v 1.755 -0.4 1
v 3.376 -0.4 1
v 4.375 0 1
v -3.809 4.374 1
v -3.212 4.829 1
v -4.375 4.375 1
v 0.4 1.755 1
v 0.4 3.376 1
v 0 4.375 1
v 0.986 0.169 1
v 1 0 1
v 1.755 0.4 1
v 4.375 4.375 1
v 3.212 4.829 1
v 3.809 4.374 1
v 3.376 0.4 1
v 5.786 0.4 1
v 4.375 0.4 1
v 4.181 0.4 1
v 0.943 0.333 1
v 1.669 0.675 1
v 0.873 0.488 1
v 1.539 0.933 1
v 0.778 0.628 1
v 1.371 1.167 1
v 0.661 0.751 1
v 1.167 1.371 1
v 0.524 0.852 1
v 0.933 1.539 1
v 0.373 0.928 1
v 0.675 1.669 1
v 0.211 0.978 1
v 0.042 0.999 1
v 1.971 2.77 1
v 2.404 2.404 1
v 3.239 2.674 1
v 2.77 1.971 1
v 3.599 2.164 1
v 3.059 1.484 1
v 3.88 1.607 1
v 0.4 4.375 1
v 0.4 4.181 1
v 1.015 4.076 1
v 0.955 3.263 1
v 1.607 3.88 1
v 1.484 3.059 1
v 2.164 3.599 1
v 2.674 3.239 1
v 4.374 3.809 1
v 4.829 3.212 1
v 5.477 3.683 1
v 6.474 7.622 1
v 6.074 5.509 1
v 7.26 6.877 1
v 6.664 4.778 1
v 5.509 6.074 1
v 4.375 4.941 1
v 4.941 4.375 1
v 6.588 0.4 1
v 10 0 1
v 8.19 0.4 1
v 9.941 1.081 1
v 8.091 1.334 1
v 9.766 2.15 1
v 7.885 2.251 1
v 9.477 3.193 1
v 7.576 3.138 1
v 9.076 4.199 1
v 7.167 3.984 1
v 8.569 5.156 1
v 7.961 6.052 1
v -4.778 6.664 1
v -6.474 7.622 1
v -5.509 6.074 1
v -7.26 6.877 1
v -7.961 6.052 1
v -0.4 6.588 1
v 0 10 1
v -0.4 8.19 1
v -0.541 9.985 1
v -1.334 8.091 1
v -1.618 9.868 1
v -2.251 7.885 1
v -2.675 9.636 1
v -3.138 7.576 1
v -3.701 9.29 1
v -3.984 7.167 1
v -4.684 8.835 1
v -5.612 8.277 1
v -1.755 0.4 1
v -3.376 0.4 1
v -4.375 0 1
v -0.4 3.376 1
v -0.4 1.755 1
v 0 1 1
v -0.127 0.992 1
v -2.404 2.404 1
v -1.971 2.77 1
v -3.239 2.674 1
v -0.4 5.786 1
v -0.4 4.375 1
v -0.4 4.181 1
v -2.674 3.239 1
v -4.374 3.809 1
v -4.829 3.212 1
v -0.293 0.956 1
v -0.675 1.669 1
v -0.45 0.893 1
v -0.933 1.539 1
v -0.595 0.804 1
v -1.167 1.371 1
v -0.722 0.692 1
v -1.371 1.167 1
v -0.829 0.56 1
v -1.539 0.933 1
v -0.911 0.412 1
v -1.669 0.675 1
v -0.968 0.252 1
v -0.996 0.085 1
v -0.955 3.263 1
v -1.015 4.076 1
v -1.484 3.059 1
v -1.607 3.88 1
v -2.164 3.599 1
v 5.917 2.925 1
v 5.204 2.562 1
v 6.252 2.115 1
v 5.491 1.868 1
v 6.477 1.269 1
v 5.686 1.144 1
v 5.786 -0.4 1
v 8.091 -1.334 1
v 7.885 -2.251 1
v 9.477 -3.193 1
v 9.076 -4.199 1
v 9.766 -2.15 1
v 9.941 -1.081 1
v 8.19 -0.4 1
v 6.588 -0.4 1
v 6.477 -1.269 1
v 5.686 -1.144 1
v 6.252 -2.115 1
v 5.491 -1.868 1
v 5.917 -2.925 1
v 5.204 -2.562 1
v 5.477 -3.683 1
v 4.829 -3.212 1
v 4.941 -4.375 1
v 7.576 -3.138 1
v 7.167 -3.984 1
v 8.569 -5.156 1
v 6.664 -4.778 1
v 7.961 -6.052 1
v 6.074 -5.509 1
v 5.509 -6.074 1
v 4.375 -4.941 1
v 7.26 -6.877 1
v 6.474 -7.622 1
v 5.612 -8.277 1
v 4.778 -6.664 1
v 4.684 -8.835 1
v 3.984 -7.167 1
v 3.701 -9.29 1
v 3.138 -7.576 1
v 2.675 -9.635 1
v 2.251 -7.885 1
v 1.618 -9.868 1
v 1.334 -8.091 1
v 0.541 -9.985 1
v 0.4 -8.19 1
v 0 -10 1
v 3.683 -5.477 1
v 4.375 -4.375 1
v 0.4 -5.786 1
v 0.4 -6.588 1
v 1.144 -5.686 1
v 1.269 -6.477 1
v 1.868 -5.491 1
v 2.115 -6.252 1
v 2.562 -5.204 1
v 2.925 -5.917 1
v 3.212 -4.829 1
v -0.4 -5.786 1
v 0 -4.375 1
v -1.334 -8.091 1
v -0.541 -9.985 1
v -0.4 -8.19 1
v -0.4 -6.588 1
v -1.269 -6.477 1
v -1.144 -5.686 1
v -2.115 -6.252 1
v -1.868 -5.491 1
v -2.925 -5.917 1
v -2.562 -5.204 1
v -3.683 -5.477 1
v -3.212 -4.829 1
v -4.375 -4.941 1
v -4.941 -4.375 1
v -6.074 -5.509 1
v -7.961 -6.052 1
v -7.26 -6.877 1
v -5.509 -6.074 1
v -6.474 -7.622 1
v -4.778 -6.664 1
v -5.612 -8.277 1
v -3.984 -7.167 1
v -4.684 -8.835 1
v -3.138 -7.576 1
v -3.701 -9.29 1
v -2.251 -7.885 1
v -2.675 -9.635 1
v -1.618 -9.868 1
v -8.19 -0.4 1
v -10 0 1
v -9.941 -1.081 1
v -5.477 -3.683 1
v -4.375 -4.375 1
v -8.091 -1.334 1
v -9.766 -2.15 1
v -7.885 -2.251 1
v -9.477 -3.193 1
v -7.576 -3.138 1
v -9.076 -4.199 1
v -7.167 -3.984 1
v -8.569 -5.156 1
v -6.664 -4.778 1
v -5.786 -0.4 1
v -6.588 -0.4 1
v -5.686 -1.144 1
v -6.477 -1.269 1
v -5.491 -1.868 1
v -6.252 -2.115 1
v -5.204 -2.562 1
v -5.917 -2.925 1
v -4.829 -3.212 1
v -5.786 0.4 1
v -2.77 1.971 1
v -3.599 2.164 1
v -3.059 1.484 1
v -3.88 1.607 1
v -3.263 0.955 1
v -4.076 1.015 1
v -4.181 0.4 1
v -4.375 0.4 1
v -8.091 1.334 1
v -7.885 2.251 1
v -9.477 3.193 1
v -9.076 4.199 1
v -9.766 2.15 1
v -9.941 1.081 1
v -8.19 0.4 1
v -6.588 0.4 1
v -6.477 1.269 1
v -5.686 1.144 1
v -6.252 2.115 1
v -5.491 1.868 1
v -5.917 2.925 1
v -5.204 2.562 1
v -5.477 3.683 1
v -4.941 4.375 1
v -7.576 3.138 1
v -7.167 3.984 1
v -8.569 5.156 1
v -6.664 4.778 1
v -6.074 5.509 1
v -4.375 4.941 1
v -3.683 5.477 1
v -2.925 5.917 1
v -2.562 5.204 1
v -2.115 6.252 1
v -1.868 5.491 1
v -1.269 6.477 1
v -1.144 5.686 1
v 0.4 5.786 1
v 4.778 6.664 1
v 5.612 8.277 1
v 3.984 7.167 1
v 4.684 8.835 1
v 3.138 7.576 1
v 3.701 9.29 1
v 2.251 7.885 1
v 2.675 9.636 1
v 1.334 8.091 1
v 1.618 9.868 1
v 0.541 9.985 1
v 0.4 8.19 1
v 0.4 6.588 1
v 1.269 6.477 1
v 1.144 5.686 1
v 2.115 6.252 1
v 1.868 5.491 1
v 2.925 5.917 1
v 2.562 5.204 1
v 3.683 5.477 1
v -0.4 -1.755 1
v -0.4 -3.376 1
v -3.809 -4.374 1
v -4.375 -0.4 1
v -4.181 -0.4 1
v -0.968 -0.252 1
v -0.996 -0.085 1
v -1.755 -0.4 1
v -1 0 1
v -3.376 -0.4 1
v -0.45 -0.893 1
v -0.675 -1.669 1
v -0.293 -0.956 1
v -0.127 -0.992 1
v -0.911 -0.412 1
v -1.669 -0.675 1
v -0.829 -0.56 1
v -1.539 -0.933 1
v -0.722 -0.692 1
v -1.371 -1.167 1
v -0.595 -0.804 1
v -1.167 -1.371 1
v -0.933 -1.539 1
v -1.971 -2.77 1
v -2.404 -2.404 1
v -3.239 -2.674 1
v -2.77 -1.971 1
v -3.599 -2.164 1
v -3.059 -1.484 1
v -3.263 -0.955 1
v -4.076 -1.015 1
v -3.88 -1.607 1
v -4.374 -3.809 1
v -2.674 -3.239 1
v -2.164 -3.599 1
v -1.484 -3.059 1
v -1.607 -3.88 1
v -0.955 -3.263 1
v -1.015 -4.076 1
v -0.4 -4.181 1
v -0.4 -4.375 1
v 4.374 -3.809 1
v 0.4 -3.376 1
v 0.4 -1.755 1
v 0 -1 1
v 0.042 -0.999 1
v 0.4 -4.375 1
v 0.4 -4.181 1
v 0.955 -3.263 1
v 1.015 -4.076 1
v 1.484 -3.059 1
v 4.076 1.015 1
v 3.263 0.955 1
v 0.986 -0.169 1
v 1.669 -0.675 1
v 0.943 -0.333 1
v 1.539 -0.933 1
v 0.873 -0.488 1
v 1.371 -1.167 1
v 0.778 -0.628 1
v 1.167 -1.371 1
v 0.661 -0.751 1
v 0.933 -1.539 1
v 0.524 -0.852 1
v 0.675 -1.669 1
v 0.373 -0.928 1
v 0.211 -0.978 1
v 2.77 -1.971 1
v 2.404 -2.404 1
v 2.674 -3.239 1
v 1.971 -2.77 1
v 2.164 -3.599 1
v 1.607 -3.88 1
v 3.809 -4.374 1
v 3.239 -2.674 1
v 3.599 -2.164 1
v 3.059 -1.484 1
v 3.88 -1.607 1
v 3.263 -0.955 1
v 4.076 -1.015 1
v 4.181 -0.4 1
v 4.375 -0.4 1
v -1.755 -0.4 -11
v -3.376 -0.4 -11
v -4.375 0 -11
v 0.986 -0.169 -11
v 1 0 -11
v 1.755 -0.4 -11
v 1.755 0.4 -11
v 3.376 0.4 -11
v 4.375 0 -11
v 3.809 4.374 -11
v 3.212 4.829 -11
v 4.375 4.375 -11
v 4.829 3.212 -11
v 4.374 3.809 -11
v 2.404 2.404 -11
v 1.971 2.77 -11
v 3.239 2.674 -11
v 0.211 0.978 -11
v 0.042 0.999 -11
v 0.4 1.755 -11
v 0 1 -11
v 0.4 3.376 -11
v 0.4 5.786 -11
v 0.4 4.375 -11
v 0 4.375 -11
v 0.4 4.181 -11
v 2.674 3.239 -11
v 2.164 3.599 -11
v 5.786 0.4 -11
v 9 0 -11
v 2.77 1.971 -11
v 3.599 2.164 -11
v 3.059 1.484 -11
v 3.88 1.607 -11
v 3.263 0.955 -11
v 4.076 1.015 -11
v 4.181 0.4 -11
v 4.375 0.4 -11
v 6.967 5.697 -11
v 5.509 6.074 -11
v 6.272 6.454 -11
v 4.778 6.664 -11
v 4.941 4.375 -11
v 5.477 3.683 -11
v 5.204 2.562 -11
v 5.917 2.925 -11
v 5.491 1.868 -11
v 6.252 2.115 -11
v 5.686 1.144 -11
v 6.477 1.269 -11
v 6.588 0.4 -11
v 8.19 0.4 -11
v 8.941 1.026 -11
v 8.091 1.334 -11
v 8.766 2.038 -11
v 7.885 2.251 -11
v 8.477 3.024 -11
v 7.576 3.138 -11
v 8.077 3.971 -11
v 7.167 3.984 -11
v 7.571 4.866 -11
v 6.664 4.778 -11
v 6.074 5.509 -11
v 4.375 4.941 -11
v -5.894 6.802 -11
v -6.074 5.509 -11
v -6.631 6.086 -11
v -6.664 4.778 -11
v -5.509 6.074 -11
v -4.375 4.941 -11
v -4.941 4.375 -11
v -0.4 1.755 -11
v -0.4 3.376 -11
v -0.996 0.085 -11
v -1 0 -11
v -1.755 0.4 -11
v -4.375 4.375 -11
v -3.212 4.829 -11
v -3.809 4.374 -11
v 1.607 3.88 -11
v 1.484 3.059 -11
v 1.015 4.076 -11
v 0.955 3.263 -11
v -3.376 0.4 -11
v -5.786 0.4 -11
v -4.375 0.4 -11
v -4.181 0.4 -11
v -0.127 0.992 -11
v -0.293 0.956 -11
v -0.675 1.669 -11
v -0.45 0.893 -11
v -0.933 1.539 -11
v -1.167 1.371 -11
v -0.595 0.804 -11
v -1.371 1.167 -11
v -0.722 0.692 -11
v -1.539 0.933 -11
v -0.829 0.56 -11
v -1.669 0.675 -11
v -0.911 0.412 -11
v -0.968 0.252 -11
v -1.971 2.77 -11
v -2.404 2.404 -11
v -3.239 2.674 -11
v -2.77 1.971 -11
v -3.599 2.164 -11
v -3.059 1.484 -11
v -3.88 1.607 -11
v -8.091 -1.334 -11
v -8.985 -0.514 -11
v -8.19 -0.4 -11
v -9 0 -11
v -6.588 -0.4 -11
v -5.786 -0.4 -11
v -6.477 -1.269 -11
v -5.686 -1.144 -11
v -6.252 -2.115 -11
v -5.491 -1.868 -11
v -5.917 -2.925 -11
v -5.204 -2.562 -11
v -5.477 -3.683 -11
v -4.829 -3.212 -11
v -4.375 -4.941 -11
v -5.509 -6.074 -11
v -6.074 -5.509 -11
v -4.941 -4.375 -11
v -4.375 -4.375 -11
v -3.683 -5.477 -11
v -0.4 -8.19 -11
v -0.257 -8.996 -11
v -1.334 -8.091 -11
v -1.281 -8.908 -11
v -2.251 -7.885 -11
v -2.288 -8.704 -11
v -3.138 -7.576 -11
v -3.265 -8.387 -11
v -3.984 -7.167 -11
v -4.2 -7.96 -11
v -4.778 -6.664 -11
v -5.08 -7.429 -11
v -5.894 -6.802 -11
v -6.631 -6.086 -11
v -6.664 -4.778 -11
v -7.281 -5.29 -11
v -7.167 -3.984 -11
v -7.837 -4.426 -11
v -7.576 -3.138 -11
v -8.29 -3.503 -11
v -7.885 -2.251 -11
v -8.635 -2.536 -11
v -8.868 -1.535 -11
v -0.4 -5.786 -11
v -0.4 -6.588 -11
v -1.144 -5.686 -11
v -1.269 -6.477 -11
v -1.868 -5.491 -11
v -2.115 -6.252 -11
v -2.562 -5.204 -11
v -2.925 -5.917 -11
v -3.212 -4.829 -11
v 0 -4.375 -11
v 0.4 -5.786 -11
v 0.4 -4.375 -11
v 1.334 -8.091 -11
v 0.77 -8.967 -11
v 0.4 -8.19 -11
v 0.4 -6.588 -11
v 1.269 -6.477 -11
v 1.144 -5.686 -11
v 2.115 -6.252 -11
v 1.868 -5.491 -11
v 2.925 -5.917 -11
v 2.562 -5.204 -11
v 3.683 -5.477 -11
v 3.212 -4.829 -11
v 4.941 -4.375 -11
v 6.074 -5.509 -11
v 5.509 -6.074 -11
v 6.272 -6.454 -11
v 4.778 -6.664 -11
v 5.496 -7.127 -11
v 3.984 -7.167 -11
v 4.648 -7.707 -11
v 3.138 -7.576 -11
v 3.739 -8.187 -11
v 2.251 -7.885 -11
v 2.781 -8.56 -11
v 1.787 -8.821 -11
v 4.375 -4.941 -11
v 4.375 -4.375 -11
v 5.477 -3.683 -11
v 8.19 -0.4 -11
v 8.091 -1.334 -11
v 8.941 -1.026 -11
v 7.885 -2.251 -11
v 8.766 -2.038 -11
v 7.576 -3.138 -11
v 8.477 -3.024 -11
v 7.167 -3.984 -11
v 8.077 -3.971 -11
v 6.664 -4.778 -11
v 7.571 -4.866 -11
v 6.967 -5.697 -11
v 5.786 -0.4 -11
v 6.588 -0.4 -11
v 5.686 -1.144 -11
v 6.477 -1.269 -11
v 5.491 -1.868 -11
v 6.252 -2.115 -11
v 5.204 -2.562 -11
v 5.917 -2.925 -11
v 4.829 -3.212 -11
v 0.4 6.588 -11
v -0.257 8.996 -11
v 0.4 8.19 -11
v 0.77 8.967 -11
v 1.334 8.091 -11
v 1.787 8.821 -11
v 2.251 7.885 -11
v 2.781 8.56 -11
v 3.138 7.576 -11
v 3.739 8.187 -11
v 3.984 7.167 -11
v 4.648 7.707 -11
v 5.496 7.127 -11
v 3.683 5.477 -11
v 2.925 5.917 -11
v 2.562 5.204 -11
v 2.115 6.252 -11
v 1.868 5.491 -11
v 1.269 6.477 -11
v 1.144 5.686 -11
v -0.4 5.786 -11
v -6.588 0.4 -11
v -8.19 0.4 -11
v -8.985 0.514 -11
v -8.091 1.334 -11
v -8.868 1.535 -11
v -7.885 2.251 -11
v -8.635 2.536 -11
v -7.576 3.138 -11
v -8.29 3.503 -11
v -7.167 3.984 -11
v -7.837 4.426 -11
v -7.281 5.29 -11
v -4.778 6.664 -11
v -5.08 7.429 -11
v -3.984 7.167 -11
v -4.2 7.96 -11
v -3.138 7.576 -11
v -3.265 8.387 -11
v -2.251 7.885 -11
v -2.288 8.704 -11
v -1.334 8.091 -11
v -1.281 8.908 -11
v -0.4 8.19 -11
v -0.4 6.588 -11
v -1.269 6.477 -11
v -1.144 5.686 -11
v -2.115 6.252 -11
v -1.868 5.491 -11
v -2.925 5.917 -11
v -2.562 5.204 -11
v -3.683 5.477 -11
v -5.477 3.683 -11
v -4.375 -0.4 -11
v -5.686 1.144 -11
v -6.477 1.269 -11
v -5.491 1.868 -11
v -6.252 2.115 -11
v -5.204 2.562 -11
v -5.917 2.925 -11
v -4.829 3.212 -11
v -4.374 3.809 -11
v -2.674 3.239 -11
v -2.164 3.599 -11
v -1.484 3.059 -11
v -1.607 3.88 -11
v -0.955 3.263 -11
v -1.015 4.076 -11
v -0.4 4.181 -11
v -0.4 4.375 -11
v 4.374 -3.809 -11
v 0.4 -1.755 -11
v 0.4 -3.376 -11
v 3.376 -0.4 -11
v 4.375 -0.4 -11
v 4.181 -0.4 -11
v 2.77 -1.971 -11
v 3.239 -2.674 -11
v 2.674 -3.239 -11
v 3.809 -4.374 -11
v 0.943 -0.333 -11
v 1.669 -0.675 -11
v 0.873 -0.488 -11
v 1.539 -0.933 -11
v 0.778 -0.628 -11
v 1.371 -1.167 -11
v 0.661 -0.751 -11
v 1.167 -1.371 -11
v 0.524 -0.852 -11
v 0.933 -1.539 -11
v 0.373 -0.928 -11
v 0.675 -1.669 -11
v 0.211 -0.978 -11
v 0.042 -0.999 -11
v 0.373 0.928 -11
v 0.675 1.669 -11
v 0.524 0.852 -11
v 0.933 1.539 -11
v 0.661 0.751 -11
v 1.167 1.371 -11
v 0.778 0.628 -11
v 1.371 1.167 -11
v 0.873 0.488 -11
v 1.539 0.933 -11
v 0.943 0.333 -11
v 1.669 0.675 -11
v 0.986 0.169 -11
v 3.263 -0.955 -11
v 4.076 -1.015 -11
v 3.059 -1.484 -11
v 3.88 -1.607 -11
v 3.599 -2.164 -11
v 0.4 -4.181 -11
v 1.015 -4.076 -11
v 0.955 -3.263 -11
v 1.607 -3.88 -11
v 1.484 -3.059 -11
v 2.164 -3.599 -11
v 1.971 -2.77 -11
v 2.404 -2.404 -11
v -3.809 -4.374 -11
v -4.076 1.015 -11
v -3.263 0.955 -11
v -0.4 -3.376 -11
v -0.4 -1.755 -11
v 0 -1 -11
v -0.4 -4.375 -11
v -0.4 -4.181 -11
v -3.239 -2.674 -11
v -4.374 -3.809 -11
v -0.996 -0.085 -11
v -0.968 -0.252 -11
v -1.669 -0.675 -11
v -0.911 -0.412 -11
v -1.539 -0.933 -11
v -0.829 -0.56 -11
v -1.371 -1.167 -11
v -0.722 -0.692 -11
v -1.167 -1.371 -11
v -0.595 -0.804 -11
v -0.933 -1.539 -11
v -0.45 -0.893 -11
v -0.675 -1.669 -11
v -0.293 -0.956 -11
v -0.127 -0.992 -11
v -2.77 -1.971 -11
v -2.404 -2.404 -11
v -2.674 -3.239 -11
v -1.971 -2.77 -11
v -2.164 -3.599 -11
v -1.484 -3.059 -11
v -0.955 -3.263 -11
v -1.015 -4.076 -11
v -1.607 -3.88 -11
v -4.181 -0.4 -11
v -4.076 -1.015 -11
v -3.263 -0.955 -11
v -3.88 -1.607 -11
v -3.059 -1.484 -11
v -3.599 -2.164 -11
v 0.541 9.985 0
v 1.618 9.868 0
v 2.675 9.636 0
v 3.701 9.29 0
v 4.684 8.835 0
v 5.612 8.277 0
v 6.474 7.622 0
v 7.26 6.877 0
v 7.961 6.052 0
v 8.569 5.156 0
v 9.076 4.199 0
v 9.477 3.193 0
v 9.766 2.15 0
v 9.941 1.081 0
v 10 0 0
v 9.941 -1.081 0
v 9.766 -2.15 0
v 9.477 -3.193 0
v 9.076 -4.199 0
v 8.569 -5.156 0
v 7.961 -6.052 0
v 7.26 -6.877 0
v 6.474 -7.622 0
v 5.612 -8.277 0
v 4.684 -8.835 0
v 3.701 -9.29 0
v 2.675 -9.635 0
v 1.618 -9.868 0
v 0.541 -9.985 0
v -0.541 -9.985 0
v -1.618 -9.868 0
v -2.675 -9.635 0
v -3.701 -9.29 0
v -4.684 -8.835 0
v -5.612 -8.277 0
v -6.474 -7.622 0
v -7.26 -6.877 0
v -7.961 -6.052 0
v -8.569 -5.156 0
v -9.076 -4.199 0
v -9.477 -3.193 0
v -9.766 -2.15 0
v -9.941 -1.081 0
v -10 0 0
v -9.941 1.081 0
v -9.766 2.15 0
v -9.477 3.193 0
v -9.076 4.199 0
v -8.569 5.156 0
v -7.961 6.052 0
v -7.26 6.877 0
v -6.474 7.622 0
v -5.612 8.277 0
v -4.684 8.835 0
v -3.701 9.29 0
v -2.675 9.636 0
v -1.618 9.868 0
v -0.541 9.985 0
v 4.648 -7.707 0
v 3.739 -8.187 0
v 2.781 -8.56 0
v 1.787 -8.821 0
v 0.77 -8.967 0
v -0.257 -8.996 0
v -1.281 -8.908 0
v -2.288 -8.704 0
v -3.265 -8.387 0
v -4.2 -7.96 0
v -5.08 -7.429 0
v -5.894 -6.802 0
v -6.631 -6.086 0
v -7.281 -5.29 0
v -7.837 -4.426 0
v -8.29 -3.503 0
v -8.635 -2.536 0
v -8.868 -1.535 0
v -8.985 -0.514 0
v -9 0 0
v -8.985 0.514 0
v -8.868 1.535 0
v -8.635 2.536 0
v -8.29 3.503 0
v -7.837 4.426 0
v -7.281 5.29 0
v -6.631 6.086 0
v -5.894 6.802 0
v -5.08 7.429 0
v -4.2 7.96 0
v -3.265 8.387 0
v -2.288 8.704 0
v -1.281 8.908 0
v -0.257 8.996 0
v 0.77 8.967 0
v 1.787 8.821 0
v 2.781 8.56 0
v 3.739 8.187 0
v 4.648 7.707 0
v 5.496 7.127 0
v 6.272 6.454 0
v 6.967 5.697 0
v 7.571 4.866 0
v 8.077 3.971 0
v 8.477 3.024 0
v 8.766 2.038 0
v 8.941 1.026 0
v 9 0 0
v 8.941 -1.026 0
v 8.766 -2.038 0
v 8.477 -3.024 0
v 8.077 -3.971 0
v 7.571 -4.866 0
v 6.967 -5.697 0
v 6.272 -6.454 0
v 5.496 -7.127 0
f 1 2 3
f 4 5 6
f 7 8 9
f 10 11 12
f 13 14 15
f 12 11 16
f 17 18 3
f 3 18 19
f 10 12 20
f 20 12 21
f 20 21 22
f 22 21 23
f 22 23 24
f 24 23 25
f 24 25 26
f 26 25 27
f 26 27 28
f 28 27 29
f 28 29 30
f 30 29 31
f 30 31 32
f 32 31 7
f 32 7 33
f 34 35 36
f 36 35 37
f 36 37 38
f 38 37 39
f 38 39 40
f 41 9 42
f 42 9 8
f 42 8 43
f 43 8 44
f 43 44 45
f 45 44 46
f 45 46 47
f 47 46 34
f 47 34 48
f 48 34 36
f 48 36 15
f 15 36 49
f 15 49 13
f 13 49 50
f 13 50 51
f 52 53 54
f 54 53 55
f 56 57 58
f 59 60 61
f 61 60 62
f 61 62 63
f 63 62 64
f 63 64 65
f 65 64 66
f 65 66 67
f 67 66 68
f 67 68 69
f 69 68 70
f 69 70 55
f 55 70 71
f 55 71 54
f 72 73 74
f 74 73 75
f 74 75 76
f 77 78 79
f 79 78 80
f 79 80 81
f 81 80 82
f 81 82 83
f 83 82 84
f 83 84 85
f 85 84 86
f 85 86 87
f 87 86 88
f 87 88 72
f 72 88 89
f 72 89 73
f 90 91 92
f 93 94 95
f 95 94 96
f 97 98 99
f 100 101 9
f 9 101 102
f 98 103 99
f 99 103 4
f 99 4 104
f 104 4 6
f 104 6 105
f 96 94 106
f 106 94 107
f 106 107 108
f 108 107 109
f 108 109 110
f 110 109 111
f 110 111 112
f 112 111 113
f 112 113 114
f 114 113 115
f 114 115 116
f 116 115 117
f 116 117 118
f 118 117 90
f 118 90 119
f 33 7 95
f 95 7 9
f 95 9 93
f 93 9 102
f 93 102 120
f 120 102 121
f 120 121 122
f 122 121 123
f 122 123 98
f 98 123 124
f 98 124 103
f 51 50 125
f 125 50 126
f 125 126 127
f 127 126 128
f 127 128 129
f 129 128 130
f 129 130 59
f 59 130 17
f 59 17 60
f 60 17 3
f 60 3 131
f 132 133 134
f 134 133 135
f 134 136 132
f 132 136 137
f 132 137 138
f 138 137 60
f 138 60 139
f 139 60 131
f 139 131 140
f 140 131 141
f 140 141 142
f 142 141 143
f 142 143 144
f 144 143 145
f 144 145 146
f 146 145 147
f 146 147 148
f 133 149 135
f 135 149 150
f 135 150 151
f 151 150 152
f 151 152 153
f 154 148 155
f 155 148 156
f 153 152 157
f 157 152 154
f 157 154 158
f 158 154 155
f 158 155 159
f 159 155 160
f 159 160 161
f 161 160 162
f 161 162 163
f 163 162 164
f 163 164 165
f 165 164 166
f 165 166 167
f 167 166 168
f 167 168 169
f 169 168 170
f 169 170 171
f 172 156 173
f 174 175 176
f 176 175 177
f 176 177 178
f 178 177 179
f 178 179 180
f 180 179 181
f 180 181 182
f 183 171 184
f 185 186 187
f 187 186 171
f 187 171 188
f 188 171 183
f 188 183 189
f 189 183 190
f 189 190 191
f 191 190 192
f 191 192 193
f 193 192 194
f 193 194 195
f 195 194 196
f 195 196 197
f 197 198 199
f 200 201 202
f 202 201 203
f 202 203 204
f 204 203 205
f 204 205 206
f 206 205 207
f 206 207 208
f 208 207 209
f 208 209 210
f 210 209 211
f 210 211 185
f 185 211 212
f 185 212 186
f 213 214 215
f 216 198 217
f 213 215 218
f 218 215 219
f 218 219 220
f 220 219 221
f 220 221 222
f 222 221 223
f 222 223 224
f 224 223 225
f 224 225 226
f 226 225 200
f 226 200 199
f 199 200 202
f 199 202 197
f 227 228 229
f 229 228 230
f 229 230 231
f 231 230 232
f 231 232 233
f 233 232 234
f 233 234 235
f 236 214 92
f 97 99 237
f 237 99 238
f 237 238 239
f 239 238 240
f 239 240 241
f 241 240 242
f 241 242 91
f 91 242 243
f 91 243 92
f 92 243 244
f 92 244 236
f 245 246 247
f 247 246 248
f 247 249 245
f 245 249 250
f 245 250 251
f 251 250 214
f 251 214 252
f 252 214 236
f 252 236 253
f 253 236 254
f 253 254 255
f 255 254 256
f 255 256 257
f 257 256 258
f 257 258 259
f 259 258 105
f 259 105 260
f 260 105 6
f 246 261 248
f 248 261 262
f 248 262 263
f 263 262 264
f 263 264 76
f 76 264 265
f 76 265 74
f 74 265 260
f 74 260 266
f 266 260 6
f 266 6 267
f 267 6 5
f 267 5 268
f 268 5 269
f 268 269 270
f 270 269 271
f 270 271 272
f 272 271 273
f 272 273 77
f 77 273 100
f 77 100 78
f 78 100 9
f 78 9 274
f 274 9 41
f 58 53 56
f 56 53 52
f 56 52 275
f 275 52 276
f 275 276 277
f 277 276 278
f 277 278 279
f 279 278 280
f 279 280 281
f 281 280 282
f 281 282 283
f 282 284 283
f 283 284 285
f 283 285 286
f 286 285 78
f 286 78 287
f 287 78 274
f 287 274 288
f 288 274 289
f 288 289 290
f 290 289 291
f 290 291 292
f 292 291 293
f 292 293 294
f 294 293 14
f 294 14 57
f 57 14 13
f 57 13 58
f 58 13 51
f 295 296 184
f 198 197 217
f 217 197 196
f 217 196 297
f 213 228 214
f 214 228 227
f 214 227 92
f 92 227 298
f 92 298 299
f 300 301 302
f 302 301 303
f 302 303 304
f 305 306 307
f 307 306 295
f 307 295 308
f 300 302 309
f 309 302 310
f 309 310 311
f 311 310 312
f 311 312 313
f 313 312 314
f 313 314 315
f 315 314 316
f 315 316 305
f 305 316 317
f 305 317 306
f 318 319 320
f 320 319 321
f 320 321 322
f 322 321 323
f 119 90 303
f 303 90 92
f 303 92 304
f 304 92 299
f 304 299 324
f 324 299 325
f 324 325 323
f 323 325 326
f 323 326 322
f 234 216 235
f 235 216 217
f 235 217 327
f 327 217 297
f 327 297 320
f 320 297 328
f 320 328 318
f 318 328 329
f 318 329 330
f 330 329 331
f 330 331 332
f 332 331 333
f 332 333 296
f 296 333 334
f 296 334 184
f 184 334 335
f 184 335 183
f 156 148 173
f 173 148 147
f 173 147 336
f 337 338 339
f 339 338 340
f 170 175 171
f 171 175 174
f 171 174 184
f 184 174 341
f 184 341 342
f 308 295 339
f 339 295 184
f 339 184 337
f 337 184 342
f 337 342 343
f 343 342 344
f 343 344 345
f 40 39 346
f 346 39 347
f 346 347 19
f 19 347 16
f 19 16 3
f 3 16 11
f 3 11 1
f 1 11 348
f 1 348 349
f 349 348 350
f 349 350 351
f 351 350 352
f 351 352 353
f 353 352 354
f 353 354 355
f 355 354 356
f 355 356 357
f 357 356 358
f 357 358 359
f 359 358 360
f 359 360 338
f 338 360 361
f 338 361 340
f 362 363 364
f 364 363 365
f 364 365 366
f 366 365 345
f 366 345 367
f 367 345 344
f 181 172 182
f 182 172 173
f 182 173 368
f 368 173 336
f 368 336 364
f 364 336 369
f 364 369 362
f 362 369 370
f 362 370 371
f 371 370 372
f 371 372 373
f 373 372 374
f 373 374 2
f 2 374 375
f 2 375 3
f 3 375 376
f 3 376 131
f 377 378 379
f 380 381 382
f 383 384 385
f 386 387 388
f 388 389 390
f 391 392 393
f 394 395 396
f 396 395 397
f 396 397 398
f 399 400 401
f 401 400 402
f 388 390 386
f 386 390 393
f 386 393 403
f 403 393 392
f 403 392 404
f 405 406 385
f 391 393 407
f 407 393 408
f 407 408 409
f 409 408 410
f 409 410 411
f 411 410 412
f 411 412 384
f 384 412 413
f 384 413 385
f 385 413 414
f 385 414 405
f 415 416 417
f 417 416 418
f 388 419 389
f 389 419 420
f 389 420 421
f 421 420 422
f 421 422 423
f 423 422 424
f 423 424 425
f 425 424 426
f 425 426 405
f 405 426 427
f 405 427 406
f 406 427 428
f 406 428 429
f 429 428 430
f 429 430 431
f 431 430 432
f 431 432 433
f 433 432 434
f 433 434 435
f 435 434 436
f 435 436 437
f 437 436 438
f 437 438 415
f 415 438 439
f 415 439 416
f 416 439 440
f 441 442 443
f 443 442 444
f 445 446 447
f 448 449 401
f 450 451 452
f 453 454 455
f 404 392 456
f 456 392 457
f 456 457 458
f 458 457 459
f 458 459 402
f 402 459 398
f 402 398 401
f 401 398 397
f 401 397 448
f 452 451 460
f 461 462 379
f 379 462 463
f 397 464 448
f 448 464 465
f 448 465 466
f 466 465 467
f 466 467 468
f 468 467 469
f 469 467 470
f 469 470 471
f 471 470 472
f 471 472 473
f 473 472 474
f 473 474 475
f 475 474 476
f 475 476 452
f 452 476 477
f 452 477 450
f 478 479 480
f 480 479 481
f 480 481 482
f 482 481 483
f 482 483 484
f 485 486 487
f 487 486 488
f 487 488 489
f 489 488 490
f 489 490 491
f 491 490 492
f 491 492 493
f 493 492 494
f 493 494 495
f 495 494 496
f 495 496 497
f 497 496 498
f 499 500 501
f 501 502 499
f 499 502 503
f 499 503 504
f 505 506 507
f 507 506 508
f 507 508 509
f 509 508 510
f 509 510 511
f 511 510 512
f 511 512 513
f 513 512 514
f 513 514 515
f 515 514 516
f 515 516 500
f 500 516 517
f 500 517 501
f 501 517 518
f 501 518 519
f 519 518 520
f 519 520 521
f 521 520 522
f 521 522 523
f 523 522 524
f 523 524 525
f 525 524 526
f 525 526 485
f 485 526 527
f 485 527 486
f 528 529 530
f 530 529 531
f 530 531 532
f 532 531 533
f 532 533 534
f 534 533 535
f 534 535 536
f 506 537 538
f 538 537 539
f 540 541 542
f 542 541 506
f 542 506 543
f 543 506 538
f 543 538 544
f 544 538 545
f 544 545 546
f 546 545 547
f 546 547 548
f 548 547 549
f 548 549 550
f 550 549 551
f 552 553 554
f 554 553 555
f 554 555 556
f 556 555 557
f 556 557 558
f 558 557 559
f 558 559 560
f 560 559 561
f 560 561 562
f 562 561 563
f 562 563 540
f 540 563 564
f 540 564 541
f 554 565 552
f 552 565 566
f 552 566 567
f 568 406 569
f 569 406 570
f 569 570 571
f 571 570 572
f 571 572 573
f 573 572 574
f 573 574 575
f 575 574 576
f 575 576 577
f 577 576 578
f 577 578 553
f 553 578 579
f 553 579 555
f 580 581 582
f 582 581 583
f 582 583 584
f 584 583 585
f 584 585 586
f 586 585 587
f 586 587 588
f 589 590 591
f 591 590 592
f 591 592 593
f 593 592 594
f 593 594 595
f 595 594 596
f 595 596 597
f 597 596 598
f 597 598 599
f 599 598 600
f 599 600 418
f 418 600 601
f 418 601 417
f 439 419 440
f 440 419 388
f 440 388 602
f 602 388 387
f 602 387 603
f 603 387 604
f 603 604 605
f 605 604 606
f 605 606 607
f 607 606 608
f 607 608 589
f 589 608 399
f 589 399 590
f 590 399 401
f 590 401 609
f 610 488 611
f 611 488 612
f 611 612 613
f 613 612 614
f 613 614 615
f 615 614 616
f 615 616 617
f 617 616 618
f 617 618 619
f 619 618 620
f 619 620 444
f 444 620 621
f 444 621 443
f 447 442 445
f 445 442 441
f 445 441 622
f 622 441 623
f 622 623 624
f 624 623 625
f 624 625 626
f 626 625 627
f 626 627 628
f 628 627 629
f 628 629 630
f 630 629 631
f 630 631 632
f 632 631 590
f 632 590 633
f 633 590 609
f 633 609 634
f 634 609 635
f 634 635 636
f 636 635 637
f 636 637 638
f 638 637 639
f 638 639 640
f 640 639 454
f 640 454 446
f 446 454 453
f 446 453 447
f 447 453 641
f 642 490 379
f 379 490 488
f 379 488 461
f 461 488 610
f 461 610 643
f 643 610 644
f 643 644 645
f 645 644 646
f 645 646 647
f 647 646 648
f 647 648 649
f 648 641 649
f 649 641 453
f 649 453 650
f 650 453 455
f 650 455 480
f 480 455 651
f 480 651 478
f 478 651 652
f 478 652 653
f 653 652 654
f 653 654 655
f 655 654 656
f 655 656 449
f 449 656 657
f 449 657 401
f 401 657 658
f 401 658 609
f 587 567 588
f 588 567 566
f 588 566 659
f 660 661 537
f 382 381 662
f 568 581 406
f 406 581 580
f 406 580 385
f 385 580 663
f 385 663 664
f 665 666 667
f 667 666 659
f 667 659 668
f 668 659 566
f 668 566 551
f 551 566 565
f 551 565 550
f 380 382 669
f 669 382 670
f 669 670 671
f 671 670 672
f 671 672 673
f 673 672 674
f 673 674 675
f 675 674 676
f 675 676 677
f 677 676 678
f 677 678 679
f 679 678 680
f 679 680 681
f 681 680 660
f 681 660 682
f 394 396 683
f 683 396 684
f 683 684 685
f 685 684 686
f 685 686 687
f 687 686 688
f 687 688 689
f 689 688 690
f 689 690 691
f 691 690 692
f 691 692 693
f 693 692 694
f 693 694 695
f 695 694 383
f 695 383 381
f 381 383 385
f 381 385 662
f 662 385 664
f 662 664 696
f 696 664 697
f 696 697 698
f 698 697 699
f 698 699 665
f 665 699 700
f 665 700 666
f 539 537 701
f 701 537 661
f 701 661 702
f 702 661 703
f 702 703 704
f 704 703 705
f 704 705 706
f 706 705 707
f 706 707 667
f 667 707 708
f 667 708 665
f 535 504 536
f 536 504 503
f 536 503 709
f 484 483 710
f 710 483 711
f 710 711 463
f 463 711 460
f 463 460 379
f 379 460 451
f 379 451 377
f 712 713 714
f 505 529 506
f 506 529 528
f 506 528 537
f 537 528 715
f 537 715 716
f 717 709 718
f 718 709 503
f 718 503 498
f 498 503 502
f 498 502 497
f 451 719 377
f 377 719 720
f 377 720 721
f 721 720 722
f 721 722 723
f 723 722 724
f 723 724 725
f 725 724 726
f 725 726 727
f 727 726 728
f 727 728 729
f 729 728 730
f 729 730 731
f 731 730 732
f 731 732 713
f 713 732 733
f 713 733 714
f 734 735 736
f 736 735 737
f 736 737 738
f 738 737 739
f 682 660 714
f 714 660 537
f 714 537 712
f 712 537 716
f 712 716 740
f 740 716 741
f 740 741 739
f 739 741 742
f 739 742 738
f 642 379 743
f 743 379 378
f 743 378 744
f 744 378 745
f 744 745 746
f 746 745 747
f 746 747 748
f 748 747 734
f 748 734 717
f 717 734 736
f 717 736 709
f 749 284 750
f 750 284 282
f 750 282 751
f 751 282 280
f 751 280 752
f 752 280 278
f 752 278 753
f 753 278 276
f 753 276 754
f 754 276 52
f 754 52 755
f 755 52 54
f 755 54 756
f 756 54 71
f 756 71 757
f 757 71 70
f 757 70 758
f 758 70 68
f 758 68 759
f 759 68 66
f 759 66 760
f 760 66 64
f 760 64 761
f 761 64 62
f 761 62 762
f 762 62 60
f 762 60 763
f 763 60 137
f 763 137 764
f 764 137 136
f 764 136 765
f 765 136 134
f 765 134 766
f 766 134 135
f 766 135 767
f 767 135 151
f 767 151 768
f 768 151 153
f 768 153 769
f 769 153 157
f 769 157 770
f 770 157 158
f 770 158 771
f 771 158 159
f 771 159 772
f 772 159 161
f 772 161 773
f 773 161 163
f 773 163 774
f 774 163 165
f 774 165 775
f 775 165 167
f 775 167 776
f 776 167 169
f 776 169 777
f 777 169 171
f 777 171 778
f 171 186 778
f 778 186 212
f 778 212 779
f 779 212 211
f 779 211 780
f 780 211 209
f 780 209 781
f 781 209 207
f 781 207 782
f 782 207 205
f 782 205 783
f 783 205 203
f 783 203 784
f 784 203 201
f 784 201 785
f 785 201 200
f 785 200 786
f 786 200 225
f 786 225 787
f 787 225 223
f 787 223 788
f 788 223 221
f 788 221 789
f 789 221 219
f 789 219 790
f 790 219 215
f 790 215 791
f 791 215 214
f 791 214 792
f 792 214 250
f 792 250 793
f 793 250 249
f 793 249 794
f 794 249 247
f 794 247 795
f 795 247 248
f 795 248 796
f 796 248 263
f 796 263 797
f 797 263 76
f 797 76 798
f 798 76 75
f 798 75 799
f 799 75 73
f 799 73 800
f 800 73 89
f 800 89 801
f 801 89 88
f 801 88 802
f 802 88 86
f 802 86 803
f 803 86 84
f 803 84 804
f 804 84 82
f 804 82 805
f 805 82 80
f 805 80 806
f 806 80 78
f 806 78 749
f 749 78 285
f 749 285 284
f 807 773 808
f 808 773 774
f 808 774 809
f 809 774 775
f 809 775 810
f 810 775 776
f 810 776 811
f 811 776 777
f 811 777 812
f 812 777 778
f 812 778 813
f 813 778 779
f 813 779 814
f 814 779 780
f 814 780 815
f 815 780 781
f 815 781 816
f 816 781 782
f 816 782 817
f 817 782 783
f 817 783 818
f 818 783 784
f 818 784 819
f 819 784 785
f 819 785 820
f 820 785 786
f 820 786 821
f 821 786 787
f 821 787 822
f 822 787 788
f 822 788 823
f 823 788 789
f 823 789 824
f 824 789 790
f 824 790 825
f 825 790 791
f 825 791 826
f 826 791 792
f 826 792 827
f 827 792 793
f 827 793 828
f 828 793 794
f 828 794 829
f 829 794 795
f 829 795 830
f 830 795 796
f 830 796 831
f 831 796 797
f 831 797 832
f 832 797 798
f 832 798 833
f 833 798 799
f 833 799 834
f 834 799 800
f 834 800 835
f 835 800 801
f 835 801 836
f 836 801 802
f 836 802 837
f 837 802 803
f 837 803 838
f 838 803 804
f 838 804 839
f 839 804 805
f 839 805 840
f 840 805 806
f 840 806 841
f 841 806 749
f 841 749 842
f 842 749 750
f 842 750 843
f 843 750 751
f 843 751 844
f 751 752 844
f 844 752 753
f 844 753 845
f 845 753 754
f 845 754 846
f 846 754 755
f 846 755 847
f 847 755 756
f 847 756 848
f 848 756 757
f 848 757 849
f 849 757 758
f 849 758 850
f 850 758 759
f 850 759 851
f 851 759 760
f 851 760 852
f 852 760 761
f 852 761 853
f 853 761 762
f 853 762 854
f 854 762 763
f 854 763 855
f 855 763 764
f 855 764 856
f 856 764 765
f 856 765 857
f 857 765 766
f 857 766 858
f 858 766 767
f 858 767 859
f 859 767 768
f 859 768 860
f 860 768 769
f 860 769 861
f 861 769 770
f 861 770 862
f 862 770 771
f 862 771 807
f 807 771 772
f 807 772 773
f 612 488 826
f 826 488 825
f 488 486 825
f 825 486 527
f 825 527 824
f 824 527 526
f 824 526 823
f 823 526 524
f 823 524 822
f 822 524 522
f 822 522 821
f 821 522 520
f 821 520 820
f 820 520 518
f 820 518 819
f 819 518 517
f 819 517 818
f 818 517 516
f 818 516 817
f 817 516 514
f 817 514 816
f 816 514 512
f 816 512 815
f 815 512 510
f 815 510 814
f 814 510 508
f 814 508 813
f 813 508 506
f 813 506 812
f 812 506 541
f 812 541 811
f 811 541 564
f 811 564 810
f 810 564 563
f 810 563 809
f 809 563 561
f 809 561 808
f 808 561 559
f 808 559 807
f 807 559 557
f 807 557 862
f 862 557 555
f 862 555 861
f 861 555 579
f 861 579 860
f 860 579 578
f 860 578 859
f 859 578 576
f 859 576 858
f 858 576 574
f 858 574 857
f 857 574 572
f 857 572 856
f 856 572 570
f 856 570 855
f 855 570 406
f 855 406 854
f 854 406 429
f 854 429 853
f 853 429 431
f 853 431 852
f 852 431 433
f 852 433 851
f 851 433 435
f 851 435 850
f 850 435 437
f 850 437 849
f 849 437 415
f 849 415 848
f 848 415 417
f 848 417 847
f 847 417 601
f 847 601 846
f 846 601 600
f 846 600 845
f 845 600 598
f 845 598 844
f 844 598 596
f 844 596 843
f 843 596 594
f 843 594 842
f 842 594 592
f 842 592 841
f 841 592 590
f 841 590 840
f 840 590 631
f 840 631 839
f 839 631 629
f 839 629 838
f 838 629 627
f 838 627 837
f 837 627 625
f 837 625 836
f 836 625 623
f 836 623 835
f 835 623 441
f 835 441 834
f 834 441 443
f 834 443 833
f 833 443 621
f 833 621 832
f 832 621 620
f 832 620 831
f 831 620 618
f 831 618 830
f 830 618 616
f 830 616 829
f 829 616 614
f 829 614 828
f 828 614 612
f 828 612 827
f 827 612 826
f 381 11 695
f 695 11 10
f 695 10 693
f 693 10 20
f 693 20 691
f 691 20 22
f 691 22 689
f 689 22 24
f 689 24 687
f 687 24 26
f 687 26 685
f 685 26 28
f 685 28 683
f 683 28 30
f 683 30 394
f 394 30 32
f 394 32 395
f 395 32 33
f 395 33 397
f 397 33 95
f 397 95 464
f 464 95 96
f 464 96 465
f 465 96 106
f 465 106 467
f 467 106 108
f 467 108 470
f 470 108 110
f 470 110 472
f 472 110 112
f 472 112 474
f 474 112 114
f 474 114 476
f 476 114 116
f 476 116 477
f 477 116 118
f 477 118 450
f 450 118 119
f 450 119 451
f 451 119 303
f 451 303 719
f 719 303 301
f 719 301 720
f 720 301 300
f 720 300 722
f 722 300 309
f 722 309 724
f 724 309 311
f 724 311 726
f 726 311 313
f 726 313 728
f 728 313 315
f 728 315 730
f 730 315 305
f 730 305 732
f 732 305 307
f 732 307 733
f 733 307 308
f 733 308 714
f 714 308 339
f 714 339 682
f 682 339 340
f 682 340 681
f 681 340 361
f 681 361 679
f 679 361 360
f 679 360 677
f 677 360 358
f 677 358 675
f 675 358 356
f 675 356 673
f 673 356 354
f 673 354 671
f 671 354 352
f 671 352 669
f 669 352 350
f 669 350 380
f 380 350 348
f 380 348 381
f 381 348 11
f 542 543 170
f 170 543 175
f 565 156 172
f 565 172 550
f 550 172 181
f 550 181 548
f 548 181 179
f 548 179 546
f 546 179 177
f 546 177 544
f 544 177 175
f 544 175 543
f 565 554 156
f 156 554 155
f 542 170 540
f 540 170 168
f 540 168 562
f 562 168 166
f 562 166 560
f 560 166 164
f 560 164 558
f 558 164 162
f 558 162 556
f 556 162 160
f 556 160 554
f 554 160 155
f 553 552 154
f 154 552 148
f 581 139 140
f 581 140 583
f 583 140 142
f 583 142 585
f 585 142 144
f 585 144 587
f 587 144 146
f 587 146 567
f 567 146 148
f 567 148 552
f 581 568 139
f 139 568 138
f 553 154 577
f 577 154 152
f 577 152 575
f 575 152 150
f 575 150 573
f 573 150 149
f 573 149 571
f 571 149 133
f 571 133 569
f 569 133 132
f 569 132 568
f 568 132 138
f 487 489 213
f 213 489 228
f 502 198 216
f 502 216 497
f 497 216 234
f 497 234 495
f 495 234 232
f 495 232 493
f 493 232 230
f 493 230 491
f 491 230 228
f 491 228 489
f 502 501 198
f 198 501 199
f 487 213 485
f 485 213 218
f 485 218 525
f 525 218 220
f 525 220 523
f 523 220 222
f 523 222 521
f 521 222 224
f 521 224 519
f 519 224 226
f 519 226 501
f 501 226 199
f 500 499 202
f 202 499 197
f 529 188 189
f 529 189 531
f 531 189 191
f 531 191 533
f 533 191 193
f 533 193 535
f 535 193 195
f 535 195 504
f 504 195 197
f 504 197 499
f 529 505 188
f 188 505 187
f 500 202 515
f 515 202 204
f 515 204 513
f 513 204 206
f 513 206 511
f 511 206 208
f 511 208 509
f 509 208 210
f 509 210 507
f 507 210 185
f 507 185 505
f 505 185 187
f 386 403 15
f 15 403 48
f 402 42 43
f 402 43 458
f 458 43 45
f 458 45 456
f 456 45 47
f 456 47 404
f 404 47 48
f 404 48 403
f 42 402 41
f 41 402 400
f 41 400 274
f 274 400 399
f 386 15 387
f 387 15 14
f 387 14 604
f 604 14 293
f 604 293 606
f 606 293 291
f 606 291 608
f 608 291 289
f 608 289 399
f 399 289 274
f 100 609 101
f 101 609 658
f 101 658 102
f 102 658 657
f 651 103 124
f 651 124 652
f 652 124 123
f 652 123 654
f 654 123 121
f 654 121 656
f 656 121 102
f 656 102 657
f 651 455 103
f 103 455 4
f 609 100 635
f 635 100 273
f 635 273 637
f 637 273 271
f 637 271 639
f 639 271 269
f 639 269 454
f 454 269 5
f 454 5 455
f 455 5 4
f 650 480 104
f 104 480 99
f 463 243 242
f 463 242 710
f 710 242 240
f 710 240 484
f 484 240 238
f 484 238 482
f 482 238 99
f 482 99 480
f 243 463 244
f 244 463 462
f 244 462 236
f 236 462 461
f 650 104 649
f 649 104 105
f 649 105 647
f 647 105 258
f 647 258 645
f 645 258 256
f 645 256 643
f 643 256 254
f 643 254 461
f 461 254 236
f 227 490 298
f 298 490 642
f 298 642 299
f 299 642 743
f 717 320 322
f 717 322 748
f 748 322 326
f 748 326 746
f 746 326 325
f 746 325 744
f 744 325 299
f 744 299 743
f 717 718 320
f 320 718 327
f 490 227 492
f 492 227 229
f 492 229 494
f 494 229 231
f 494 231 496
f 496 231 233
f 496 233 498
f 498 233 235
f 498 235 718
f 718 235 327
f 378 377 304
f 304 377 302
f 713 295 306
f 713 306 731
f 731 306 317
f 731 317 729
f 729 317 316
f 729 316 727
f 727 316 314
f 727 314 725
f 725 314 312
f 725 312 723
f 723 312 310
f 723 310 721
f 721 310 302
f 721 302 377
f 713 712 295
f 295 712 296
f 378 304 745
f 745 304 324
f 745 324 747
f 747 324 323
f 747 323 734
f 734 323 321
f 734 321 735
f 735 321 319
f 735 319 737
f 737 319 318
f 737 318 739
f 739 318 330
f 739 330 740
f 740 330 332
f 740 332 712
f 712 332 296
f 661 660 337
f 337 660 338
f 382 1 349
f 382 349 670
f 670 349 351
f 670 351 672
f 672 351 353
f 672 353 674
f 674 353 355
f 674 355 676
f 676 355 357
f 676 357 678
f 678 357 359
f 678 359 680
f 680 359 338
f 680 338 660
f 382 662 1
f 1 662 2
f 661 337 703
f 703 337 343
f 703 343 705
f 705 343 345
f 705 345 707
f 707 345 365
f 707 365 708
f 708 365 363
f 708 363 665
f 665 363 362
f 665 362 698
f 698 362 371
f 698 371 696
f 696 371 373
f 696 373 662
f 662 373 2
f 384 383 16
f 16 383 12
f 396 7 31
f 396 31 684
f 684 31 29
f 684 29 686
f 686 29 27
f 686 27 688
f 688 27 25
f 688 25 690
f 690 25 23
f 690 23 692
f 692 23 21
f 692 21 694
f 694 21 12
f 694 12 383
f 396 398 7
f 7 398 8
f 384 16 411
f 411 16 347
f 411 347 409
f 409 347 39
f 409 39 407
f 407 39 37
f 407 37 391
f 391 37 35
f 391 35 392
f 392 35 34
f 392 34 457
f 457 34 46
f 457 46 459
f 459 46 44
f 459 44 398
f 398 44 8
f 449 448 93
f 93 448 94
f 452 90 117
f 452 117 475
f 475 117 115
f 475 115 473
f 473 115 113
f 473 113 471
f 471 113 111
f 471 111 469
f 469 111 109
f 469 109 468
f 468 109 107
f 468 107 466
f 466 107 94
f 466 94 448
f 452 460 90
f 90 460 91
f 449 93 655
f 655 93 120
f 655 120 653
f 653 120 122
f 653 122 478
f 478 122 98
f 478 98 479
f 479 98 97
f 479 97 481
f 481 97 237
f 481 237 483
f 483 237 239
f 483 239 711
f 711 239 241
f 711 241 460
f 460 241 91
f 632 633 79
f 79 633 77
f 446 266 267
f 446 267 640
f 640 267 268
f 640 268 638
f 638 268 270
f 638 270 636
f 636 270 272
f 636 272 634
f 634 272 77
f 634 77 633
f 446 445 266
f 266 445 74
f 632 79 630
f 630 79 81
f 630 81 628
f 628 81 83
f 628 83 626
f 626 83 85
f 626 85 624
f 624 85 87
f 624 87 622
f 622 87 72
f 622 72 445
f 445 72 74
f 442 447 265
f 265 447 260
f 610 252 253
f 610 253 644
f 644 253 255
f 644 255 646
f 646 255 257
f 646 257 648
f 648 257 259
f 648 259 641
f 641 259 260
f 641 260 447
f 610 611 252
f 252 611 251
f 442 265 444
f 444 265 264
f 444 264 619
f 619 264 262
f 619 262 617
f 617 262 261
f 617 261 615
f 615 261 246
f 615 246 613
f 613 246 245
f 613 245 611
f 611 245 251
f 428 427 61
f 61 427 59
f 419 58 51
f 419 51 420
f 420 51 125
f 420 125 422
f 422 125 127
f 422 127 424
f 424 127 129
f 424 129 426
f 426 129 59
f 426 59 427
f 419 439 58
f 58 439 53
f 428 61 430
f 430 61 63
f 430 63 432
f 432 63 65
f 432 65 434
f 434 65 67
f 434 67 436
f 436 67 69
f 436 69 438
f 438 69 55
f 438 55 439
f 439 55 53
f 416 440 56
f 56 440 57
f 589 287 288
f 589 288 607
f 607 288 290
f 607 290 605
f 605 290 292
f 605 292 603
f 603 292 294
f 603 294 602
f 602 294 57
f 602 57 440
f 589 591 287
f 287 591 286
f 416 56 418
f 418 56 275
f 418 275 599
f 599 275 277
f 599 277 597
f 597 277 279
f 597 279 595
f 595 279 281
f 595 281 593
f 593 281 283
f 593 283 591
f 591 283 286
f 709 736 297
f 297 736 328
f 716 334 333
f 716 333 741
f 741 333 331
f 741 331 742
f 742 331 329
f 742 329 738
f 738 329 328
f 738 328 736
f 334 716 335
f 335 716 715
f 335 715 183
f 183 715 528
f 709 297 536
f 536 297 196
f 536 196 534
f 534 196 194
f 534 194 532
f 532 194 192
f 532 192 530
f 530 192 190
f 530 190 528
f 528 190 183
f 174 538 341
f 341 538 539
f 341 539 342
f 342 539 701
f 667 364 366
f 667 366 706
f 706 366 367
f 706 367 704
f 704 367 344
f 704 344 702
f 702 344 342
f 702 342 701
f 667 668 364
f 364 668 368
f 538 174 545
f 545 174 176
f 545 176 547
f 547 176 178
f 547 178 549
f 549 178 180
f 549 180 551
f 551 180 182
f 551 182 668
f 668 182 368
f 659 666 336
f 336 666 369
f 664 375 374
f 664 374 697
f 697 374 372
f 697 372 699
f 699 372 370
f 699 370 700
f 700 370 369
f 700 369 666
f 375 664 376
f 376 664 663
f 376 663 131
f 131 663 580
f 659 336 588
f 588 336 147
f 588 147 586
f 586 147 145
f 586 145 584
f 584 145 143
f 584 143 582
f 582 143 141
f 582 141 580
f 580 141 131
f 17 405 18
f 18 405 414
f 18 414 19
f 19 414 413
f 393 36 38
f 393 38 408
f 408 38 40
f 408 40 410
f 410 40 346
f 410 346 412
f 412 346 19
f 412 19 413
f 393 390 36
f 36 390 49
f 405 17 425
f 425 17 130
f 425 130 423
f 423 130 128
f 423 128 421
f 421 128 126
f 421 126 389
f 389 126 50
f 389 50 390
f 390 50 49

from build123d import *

# Parameters (mm, degrees)
SKETCH1_R           = 10
BOSS_EXTRUDE1_DEPTH = 1
SKETCH2_R           = 9
BOSS_EXTRUDE2_DEPTH = 11
SKETCH3_R           = 1
CUT_EXTRUDE2_DEPTH  = 19.547236991


with BuildPart() as part:
    # Sketch1 → Boss-Extrude1 (new body)
    with BuildSketch(Plane.XY):
        Circle(SKETCH1_R)
    extrude(amount=BOSS_EXTRUDE1_DEPTH)

    # Sketch2 → Boss-Extrude2 (add)
    with BuildSketch(Plane(origin=(0, 0, 0), x_dir=(-1, 0, 0), z_dir=(0, 0, -1))):
        Circle(SKETCH2_R)
    extrude(amount=BOSS_EXTRUDE2_DEPTH)

    # Sketch3 → Cut-Extrude2 (cut, through all)
    with BuildSketch(Plane.XY.offset(1)):
        Circle(SKETCH3_R)
        with BuildLine():
            ThreePointArc((-1.754992877, 0.4), (-1.272792206, 1.272792206), (-0.4, 1.754992877))
            Line((-0.4, 1.754992877), (-0.4, 3.376388603))
            ThreePointArc((-0.4, 3.376388603), (-2.404163056, 2.404163056), (-3.376388603, 0.4))
            Line((-3.376388603, 0.4), (-1.754992877, 0.4))
        make_face()
        with BuildLine():
            Line((0.4, 3.376388603), (0.4, 1.754992877))
            ThreePointArc((0.4, 1.754992877), (1.272792206, 1.272792206), (1.754992877, 0.4))
            Line((1.754992877, 0.4), (3.376388603, 0.4))
            ThreePointArc((3.376388603, 0.4), (2.404163056, 2.404163056), (0.4, 3.376388603))
        make_face()
        with BuildLine():
            Line((3.376388603, -0.4), (1.754992877, -0.4))
            ThreePointArc((1.754992877, -0.4), (1.272792206, -1.272792206), (0.4, -1.754992877))
            Line((0.4, -1.754992877), (0.4, -3.376388603))
            ThreePointArc((0.4, -3.376388603), (2.404163056, -2.404163056), (3.376388603, -0.4))
        make_face()
        with BuildLine():
            ThreePointArc((-0.4, -1.754992877), (-1.272792206, -1.272792206), (-1.754992877, -0.4))
            Line((-1.754992877, -0.4), (-3.376388603, -0.4))
            ThreePointArc((-3.376388603, -0.4), (-2.404163056, -2.404163056), (-0.4, -3.376388603))
            Line((-0.4, -3.376388603), (-0.4, -1.754992877))
        make_face()
        with BuildLine():
            ThreePointArc((0.4, 4.180908992), (1.607270416, 3.880294037), (2.673506387, 3.239191812))
            Line((2.673506387, 3.239191812), (3.808611797, 4.374297222))
            ThreePointArc((3.808611797, 4.374297222), (2.219563908, 5.358501289), (0.4, 5.786190457))
            Line((0.4, 5.786190457), (0.4, 4.180908992))
        make_face()
        with BuildLine():
            ThreePointArc((-2.673506387, 3.239191812), (-1.607270416, 3.880294037), (-0.4, 4.180908992))
            Line((-0.4, 4.180908992), (-0.4, 5.786190457))
            ThreePointArc((-0.4, 5.786190457), (-2.219563908, 5.358501289), (-3.808611797, 4.374297222))
            Line((-3.808611797, 4.374297222), (-2.673506387, 3.239191812))
        make_face()
        with BuildLine():
            ThreePointArc((-4.180908992, 0.4), (-3.880294037, 1.607270416), (-3.239191812, 2.673506387))
            Line((-3.239191812, 2.673506387), (-4.374297222, 3.808611797))
            ThreePointArc((-4.374297222, 3.808611797), (-5.358501289, 2.219563908), (-5.786190457, 0.4))
            Line((-5.786190457, 0.4), (-4.180908992, 0.4))
        make_face()
        with BuildLine():
            ThreePointArc((-3.239191812, -2.673506387), (-3.880294037, -1.607270416), (-4.180908992, -0.4))
            Line((-4.180908992, -0.4), (-5.786190457, -0.4))
            ThreePointArc((-5.786190457, -0.4), (-5.358501289, -2.219563908), (-4.374297222, -3.808611797))
            Line((-4.374297222, -3.808611797), (-3.239191812, -2.673506387))
        make_face()
        with BuildLine():
            Line((-0.4, -5.786190457), (-0.4, -4.180908992))
            ThreePointArc((-0.4, -4.180908992), (-1.607270416, -3.880294037), (-2.673506387, -3.239191812))
            Line((-2.673506387, -3.239191812), (-3.808611797, -4.374297222))
            ThreePointArc((-3.808611797, -4.374297222), (-2.219563908, -5.358501289), (-0.4, -5.786190457))
        make_face()
        with BuildLine():
            Line((3.808611797, -4.374297222), (2.673506387, -3.239191812))
            ThreePointArc((2.673506387, -3.239191812), (1.607270416, -3.880294037), (0.4, -4.180908992))
            Line((0.4, -4.180908992), (0.4, -5.786190457))
            ThreePointArc((0.4, -5.786190457), (2.219563908, -5.358501289), (3.808611797, -4.374297222))
        make_face()
        with BuildLine():
            Line((5.786190457, -0.4), (4.180908992, -0.4))
            ThreePointArc((4.180908992, -0.4), (3.880294037, -1.607270416), (3.239191812, -2.673506387))
            Line((3.239191812, -2.673506387), (4.374297222, -3.808611797))
            ThreePointArc((4.374297222, -3.808611797), (5.358501289, -2.219563908), (5.786190457, -0.4))
        make_face()
        with BuildLine():
            Line((4.374297222, 3.808611797), (3.239191812, 2.673506387))
            ThreePointArc((3.239191812, 2.673506387), (3.880294037, 1.607270416), (4.180908992, 0.4))
            Line((4.180908992, 0.4), (5.786190457, 0.4))
            ThreePointArc((5.786190457, 0.4), (5.358501289, 2.219563908), (4.374297222, 3.808611797))
        make_face()
        with BuildLine():
            ThreePointArc((8.190238092, 0.4), (7.575812167, 3.138004145), (6.074215607, 5.508530182))
            Line((6.074215607, 5.508530182), (4.941168592, 4.375483167))
            ThreePointArc((4.941168592, 4.375483167), (6.097604915, 2.525710654), (6.587867637, 0.4))
            Line((6.587867637, 0.4), (8.190238092, 0.4))
        make_face()
        with BuildLine():
            ThreePointArc((5.508530182, 6.074215607), (3.138004145, 7.575812167), (0.4, 8.190238092))
            Line((0.4, 8.190238092), (0.4, 6.587867637))
            ThreePointArc((0.4, 6.587867637), (2.525710654, 6.097604915), (4.375483167, 4.941168592))
            Line((4.375483167, 4.941168592), (5.508530182, 6.074215607))
        make_face()
        with BuildLine():
            Line((-0.4, 6.587867637), (-0.4, 8.190238092))
            ThreePointArc((-0.4, 8.190238092), (-3.138004145, 7.575812167), (-5.508530182, 6.074215607))
            Line((-5.508530182, 6.074215607), (-4.375483167, 4.941168592))
            ThreePointArc((-4.375483167, 4.941168592), (-2.525710654, 6.097604915), (-0.4, 6.587867637))
        make_face()
        with BuildLine():
            Line((-4.941168592, 4.375483167), (-6.074215607, 5.508530182))
            ThreePointArc((-6.074215607, 5.508530182), (-7.575812167, 3.138004145), (-8.190238092, 0.4))
            Line((-8.190238092, 0.4), (-6.587867637, 0.4))
            ThreePointArc((-6.587867637, 0.4), (-6.097604915, 2.525710654), (-4.941168592, 4.375483167))
        make_face()
        with BuildLine():
            Line((-6.587867637, -0.4), (-8.190238092, -0.4))
            ThreePointArc((-8.190238092, -0.4), (-7.575812167, -3.138004145), (-6.074215607, -5.508530182))
            Line((-6.074215607, -5.508530182), (-4.941168592, -4.375483167))
            ThreePointArc((-4.941168592, -4.375483167), (-6.097604915, -2.525710654), (-6.587867637, -0.4))
        make_face()
        with BuildLine():
            Line((-4.375483167, -4.941168592), (-5.508530182, -6.074215607))
            ThreePointArc((-5.508530182, -6.074215607), (-3.138004145, -7.575812167), (-0.4, -8.190238092))
            Line((-0.4, -8.190238092), (-0.4, -6.587867637))
            ThreePointArc((-0.4, -6.587867637), (-2.525710654, -6.097604915), (-4.375483167, -4.941168592))
        make_face()
        with BuildLine():
            ThreePointArc((0.4, -8.190238092), (3.138004145, -7.575812167), (5.508530182, -6.074215607))
            Line((5.508530182, -6.074215607), (4.375483167, -4.941168592))
            ThreePointArc((4.375483167, -4.941168592), (2.525710654, -6.097604915), (0.4, -6.587867637))
            Line((0.4, -6.587867637), (0.4, -8.190238092))
        make_face()
        with BuildLine():
            ThreePointArc((6.074215607, -5.508530182), (7.575812167, -3.138004145), (8.190238092, -0.4))
            Line((8.190238092, -0.4), (6.587867637, -0.4))
            ThreePointArc((6.587867637, -0.4), (6.097604915, -2.525710654), (4.941168592, -4.375483167))
            Line((4.941168592, -4.375483167), (6.074215607, -5.508530182))
        make_face()
    extrude(amount=-CUT_EXTRUDE2_DEPTH, mode=Mode.SUBTRACT)


solid = part.part
